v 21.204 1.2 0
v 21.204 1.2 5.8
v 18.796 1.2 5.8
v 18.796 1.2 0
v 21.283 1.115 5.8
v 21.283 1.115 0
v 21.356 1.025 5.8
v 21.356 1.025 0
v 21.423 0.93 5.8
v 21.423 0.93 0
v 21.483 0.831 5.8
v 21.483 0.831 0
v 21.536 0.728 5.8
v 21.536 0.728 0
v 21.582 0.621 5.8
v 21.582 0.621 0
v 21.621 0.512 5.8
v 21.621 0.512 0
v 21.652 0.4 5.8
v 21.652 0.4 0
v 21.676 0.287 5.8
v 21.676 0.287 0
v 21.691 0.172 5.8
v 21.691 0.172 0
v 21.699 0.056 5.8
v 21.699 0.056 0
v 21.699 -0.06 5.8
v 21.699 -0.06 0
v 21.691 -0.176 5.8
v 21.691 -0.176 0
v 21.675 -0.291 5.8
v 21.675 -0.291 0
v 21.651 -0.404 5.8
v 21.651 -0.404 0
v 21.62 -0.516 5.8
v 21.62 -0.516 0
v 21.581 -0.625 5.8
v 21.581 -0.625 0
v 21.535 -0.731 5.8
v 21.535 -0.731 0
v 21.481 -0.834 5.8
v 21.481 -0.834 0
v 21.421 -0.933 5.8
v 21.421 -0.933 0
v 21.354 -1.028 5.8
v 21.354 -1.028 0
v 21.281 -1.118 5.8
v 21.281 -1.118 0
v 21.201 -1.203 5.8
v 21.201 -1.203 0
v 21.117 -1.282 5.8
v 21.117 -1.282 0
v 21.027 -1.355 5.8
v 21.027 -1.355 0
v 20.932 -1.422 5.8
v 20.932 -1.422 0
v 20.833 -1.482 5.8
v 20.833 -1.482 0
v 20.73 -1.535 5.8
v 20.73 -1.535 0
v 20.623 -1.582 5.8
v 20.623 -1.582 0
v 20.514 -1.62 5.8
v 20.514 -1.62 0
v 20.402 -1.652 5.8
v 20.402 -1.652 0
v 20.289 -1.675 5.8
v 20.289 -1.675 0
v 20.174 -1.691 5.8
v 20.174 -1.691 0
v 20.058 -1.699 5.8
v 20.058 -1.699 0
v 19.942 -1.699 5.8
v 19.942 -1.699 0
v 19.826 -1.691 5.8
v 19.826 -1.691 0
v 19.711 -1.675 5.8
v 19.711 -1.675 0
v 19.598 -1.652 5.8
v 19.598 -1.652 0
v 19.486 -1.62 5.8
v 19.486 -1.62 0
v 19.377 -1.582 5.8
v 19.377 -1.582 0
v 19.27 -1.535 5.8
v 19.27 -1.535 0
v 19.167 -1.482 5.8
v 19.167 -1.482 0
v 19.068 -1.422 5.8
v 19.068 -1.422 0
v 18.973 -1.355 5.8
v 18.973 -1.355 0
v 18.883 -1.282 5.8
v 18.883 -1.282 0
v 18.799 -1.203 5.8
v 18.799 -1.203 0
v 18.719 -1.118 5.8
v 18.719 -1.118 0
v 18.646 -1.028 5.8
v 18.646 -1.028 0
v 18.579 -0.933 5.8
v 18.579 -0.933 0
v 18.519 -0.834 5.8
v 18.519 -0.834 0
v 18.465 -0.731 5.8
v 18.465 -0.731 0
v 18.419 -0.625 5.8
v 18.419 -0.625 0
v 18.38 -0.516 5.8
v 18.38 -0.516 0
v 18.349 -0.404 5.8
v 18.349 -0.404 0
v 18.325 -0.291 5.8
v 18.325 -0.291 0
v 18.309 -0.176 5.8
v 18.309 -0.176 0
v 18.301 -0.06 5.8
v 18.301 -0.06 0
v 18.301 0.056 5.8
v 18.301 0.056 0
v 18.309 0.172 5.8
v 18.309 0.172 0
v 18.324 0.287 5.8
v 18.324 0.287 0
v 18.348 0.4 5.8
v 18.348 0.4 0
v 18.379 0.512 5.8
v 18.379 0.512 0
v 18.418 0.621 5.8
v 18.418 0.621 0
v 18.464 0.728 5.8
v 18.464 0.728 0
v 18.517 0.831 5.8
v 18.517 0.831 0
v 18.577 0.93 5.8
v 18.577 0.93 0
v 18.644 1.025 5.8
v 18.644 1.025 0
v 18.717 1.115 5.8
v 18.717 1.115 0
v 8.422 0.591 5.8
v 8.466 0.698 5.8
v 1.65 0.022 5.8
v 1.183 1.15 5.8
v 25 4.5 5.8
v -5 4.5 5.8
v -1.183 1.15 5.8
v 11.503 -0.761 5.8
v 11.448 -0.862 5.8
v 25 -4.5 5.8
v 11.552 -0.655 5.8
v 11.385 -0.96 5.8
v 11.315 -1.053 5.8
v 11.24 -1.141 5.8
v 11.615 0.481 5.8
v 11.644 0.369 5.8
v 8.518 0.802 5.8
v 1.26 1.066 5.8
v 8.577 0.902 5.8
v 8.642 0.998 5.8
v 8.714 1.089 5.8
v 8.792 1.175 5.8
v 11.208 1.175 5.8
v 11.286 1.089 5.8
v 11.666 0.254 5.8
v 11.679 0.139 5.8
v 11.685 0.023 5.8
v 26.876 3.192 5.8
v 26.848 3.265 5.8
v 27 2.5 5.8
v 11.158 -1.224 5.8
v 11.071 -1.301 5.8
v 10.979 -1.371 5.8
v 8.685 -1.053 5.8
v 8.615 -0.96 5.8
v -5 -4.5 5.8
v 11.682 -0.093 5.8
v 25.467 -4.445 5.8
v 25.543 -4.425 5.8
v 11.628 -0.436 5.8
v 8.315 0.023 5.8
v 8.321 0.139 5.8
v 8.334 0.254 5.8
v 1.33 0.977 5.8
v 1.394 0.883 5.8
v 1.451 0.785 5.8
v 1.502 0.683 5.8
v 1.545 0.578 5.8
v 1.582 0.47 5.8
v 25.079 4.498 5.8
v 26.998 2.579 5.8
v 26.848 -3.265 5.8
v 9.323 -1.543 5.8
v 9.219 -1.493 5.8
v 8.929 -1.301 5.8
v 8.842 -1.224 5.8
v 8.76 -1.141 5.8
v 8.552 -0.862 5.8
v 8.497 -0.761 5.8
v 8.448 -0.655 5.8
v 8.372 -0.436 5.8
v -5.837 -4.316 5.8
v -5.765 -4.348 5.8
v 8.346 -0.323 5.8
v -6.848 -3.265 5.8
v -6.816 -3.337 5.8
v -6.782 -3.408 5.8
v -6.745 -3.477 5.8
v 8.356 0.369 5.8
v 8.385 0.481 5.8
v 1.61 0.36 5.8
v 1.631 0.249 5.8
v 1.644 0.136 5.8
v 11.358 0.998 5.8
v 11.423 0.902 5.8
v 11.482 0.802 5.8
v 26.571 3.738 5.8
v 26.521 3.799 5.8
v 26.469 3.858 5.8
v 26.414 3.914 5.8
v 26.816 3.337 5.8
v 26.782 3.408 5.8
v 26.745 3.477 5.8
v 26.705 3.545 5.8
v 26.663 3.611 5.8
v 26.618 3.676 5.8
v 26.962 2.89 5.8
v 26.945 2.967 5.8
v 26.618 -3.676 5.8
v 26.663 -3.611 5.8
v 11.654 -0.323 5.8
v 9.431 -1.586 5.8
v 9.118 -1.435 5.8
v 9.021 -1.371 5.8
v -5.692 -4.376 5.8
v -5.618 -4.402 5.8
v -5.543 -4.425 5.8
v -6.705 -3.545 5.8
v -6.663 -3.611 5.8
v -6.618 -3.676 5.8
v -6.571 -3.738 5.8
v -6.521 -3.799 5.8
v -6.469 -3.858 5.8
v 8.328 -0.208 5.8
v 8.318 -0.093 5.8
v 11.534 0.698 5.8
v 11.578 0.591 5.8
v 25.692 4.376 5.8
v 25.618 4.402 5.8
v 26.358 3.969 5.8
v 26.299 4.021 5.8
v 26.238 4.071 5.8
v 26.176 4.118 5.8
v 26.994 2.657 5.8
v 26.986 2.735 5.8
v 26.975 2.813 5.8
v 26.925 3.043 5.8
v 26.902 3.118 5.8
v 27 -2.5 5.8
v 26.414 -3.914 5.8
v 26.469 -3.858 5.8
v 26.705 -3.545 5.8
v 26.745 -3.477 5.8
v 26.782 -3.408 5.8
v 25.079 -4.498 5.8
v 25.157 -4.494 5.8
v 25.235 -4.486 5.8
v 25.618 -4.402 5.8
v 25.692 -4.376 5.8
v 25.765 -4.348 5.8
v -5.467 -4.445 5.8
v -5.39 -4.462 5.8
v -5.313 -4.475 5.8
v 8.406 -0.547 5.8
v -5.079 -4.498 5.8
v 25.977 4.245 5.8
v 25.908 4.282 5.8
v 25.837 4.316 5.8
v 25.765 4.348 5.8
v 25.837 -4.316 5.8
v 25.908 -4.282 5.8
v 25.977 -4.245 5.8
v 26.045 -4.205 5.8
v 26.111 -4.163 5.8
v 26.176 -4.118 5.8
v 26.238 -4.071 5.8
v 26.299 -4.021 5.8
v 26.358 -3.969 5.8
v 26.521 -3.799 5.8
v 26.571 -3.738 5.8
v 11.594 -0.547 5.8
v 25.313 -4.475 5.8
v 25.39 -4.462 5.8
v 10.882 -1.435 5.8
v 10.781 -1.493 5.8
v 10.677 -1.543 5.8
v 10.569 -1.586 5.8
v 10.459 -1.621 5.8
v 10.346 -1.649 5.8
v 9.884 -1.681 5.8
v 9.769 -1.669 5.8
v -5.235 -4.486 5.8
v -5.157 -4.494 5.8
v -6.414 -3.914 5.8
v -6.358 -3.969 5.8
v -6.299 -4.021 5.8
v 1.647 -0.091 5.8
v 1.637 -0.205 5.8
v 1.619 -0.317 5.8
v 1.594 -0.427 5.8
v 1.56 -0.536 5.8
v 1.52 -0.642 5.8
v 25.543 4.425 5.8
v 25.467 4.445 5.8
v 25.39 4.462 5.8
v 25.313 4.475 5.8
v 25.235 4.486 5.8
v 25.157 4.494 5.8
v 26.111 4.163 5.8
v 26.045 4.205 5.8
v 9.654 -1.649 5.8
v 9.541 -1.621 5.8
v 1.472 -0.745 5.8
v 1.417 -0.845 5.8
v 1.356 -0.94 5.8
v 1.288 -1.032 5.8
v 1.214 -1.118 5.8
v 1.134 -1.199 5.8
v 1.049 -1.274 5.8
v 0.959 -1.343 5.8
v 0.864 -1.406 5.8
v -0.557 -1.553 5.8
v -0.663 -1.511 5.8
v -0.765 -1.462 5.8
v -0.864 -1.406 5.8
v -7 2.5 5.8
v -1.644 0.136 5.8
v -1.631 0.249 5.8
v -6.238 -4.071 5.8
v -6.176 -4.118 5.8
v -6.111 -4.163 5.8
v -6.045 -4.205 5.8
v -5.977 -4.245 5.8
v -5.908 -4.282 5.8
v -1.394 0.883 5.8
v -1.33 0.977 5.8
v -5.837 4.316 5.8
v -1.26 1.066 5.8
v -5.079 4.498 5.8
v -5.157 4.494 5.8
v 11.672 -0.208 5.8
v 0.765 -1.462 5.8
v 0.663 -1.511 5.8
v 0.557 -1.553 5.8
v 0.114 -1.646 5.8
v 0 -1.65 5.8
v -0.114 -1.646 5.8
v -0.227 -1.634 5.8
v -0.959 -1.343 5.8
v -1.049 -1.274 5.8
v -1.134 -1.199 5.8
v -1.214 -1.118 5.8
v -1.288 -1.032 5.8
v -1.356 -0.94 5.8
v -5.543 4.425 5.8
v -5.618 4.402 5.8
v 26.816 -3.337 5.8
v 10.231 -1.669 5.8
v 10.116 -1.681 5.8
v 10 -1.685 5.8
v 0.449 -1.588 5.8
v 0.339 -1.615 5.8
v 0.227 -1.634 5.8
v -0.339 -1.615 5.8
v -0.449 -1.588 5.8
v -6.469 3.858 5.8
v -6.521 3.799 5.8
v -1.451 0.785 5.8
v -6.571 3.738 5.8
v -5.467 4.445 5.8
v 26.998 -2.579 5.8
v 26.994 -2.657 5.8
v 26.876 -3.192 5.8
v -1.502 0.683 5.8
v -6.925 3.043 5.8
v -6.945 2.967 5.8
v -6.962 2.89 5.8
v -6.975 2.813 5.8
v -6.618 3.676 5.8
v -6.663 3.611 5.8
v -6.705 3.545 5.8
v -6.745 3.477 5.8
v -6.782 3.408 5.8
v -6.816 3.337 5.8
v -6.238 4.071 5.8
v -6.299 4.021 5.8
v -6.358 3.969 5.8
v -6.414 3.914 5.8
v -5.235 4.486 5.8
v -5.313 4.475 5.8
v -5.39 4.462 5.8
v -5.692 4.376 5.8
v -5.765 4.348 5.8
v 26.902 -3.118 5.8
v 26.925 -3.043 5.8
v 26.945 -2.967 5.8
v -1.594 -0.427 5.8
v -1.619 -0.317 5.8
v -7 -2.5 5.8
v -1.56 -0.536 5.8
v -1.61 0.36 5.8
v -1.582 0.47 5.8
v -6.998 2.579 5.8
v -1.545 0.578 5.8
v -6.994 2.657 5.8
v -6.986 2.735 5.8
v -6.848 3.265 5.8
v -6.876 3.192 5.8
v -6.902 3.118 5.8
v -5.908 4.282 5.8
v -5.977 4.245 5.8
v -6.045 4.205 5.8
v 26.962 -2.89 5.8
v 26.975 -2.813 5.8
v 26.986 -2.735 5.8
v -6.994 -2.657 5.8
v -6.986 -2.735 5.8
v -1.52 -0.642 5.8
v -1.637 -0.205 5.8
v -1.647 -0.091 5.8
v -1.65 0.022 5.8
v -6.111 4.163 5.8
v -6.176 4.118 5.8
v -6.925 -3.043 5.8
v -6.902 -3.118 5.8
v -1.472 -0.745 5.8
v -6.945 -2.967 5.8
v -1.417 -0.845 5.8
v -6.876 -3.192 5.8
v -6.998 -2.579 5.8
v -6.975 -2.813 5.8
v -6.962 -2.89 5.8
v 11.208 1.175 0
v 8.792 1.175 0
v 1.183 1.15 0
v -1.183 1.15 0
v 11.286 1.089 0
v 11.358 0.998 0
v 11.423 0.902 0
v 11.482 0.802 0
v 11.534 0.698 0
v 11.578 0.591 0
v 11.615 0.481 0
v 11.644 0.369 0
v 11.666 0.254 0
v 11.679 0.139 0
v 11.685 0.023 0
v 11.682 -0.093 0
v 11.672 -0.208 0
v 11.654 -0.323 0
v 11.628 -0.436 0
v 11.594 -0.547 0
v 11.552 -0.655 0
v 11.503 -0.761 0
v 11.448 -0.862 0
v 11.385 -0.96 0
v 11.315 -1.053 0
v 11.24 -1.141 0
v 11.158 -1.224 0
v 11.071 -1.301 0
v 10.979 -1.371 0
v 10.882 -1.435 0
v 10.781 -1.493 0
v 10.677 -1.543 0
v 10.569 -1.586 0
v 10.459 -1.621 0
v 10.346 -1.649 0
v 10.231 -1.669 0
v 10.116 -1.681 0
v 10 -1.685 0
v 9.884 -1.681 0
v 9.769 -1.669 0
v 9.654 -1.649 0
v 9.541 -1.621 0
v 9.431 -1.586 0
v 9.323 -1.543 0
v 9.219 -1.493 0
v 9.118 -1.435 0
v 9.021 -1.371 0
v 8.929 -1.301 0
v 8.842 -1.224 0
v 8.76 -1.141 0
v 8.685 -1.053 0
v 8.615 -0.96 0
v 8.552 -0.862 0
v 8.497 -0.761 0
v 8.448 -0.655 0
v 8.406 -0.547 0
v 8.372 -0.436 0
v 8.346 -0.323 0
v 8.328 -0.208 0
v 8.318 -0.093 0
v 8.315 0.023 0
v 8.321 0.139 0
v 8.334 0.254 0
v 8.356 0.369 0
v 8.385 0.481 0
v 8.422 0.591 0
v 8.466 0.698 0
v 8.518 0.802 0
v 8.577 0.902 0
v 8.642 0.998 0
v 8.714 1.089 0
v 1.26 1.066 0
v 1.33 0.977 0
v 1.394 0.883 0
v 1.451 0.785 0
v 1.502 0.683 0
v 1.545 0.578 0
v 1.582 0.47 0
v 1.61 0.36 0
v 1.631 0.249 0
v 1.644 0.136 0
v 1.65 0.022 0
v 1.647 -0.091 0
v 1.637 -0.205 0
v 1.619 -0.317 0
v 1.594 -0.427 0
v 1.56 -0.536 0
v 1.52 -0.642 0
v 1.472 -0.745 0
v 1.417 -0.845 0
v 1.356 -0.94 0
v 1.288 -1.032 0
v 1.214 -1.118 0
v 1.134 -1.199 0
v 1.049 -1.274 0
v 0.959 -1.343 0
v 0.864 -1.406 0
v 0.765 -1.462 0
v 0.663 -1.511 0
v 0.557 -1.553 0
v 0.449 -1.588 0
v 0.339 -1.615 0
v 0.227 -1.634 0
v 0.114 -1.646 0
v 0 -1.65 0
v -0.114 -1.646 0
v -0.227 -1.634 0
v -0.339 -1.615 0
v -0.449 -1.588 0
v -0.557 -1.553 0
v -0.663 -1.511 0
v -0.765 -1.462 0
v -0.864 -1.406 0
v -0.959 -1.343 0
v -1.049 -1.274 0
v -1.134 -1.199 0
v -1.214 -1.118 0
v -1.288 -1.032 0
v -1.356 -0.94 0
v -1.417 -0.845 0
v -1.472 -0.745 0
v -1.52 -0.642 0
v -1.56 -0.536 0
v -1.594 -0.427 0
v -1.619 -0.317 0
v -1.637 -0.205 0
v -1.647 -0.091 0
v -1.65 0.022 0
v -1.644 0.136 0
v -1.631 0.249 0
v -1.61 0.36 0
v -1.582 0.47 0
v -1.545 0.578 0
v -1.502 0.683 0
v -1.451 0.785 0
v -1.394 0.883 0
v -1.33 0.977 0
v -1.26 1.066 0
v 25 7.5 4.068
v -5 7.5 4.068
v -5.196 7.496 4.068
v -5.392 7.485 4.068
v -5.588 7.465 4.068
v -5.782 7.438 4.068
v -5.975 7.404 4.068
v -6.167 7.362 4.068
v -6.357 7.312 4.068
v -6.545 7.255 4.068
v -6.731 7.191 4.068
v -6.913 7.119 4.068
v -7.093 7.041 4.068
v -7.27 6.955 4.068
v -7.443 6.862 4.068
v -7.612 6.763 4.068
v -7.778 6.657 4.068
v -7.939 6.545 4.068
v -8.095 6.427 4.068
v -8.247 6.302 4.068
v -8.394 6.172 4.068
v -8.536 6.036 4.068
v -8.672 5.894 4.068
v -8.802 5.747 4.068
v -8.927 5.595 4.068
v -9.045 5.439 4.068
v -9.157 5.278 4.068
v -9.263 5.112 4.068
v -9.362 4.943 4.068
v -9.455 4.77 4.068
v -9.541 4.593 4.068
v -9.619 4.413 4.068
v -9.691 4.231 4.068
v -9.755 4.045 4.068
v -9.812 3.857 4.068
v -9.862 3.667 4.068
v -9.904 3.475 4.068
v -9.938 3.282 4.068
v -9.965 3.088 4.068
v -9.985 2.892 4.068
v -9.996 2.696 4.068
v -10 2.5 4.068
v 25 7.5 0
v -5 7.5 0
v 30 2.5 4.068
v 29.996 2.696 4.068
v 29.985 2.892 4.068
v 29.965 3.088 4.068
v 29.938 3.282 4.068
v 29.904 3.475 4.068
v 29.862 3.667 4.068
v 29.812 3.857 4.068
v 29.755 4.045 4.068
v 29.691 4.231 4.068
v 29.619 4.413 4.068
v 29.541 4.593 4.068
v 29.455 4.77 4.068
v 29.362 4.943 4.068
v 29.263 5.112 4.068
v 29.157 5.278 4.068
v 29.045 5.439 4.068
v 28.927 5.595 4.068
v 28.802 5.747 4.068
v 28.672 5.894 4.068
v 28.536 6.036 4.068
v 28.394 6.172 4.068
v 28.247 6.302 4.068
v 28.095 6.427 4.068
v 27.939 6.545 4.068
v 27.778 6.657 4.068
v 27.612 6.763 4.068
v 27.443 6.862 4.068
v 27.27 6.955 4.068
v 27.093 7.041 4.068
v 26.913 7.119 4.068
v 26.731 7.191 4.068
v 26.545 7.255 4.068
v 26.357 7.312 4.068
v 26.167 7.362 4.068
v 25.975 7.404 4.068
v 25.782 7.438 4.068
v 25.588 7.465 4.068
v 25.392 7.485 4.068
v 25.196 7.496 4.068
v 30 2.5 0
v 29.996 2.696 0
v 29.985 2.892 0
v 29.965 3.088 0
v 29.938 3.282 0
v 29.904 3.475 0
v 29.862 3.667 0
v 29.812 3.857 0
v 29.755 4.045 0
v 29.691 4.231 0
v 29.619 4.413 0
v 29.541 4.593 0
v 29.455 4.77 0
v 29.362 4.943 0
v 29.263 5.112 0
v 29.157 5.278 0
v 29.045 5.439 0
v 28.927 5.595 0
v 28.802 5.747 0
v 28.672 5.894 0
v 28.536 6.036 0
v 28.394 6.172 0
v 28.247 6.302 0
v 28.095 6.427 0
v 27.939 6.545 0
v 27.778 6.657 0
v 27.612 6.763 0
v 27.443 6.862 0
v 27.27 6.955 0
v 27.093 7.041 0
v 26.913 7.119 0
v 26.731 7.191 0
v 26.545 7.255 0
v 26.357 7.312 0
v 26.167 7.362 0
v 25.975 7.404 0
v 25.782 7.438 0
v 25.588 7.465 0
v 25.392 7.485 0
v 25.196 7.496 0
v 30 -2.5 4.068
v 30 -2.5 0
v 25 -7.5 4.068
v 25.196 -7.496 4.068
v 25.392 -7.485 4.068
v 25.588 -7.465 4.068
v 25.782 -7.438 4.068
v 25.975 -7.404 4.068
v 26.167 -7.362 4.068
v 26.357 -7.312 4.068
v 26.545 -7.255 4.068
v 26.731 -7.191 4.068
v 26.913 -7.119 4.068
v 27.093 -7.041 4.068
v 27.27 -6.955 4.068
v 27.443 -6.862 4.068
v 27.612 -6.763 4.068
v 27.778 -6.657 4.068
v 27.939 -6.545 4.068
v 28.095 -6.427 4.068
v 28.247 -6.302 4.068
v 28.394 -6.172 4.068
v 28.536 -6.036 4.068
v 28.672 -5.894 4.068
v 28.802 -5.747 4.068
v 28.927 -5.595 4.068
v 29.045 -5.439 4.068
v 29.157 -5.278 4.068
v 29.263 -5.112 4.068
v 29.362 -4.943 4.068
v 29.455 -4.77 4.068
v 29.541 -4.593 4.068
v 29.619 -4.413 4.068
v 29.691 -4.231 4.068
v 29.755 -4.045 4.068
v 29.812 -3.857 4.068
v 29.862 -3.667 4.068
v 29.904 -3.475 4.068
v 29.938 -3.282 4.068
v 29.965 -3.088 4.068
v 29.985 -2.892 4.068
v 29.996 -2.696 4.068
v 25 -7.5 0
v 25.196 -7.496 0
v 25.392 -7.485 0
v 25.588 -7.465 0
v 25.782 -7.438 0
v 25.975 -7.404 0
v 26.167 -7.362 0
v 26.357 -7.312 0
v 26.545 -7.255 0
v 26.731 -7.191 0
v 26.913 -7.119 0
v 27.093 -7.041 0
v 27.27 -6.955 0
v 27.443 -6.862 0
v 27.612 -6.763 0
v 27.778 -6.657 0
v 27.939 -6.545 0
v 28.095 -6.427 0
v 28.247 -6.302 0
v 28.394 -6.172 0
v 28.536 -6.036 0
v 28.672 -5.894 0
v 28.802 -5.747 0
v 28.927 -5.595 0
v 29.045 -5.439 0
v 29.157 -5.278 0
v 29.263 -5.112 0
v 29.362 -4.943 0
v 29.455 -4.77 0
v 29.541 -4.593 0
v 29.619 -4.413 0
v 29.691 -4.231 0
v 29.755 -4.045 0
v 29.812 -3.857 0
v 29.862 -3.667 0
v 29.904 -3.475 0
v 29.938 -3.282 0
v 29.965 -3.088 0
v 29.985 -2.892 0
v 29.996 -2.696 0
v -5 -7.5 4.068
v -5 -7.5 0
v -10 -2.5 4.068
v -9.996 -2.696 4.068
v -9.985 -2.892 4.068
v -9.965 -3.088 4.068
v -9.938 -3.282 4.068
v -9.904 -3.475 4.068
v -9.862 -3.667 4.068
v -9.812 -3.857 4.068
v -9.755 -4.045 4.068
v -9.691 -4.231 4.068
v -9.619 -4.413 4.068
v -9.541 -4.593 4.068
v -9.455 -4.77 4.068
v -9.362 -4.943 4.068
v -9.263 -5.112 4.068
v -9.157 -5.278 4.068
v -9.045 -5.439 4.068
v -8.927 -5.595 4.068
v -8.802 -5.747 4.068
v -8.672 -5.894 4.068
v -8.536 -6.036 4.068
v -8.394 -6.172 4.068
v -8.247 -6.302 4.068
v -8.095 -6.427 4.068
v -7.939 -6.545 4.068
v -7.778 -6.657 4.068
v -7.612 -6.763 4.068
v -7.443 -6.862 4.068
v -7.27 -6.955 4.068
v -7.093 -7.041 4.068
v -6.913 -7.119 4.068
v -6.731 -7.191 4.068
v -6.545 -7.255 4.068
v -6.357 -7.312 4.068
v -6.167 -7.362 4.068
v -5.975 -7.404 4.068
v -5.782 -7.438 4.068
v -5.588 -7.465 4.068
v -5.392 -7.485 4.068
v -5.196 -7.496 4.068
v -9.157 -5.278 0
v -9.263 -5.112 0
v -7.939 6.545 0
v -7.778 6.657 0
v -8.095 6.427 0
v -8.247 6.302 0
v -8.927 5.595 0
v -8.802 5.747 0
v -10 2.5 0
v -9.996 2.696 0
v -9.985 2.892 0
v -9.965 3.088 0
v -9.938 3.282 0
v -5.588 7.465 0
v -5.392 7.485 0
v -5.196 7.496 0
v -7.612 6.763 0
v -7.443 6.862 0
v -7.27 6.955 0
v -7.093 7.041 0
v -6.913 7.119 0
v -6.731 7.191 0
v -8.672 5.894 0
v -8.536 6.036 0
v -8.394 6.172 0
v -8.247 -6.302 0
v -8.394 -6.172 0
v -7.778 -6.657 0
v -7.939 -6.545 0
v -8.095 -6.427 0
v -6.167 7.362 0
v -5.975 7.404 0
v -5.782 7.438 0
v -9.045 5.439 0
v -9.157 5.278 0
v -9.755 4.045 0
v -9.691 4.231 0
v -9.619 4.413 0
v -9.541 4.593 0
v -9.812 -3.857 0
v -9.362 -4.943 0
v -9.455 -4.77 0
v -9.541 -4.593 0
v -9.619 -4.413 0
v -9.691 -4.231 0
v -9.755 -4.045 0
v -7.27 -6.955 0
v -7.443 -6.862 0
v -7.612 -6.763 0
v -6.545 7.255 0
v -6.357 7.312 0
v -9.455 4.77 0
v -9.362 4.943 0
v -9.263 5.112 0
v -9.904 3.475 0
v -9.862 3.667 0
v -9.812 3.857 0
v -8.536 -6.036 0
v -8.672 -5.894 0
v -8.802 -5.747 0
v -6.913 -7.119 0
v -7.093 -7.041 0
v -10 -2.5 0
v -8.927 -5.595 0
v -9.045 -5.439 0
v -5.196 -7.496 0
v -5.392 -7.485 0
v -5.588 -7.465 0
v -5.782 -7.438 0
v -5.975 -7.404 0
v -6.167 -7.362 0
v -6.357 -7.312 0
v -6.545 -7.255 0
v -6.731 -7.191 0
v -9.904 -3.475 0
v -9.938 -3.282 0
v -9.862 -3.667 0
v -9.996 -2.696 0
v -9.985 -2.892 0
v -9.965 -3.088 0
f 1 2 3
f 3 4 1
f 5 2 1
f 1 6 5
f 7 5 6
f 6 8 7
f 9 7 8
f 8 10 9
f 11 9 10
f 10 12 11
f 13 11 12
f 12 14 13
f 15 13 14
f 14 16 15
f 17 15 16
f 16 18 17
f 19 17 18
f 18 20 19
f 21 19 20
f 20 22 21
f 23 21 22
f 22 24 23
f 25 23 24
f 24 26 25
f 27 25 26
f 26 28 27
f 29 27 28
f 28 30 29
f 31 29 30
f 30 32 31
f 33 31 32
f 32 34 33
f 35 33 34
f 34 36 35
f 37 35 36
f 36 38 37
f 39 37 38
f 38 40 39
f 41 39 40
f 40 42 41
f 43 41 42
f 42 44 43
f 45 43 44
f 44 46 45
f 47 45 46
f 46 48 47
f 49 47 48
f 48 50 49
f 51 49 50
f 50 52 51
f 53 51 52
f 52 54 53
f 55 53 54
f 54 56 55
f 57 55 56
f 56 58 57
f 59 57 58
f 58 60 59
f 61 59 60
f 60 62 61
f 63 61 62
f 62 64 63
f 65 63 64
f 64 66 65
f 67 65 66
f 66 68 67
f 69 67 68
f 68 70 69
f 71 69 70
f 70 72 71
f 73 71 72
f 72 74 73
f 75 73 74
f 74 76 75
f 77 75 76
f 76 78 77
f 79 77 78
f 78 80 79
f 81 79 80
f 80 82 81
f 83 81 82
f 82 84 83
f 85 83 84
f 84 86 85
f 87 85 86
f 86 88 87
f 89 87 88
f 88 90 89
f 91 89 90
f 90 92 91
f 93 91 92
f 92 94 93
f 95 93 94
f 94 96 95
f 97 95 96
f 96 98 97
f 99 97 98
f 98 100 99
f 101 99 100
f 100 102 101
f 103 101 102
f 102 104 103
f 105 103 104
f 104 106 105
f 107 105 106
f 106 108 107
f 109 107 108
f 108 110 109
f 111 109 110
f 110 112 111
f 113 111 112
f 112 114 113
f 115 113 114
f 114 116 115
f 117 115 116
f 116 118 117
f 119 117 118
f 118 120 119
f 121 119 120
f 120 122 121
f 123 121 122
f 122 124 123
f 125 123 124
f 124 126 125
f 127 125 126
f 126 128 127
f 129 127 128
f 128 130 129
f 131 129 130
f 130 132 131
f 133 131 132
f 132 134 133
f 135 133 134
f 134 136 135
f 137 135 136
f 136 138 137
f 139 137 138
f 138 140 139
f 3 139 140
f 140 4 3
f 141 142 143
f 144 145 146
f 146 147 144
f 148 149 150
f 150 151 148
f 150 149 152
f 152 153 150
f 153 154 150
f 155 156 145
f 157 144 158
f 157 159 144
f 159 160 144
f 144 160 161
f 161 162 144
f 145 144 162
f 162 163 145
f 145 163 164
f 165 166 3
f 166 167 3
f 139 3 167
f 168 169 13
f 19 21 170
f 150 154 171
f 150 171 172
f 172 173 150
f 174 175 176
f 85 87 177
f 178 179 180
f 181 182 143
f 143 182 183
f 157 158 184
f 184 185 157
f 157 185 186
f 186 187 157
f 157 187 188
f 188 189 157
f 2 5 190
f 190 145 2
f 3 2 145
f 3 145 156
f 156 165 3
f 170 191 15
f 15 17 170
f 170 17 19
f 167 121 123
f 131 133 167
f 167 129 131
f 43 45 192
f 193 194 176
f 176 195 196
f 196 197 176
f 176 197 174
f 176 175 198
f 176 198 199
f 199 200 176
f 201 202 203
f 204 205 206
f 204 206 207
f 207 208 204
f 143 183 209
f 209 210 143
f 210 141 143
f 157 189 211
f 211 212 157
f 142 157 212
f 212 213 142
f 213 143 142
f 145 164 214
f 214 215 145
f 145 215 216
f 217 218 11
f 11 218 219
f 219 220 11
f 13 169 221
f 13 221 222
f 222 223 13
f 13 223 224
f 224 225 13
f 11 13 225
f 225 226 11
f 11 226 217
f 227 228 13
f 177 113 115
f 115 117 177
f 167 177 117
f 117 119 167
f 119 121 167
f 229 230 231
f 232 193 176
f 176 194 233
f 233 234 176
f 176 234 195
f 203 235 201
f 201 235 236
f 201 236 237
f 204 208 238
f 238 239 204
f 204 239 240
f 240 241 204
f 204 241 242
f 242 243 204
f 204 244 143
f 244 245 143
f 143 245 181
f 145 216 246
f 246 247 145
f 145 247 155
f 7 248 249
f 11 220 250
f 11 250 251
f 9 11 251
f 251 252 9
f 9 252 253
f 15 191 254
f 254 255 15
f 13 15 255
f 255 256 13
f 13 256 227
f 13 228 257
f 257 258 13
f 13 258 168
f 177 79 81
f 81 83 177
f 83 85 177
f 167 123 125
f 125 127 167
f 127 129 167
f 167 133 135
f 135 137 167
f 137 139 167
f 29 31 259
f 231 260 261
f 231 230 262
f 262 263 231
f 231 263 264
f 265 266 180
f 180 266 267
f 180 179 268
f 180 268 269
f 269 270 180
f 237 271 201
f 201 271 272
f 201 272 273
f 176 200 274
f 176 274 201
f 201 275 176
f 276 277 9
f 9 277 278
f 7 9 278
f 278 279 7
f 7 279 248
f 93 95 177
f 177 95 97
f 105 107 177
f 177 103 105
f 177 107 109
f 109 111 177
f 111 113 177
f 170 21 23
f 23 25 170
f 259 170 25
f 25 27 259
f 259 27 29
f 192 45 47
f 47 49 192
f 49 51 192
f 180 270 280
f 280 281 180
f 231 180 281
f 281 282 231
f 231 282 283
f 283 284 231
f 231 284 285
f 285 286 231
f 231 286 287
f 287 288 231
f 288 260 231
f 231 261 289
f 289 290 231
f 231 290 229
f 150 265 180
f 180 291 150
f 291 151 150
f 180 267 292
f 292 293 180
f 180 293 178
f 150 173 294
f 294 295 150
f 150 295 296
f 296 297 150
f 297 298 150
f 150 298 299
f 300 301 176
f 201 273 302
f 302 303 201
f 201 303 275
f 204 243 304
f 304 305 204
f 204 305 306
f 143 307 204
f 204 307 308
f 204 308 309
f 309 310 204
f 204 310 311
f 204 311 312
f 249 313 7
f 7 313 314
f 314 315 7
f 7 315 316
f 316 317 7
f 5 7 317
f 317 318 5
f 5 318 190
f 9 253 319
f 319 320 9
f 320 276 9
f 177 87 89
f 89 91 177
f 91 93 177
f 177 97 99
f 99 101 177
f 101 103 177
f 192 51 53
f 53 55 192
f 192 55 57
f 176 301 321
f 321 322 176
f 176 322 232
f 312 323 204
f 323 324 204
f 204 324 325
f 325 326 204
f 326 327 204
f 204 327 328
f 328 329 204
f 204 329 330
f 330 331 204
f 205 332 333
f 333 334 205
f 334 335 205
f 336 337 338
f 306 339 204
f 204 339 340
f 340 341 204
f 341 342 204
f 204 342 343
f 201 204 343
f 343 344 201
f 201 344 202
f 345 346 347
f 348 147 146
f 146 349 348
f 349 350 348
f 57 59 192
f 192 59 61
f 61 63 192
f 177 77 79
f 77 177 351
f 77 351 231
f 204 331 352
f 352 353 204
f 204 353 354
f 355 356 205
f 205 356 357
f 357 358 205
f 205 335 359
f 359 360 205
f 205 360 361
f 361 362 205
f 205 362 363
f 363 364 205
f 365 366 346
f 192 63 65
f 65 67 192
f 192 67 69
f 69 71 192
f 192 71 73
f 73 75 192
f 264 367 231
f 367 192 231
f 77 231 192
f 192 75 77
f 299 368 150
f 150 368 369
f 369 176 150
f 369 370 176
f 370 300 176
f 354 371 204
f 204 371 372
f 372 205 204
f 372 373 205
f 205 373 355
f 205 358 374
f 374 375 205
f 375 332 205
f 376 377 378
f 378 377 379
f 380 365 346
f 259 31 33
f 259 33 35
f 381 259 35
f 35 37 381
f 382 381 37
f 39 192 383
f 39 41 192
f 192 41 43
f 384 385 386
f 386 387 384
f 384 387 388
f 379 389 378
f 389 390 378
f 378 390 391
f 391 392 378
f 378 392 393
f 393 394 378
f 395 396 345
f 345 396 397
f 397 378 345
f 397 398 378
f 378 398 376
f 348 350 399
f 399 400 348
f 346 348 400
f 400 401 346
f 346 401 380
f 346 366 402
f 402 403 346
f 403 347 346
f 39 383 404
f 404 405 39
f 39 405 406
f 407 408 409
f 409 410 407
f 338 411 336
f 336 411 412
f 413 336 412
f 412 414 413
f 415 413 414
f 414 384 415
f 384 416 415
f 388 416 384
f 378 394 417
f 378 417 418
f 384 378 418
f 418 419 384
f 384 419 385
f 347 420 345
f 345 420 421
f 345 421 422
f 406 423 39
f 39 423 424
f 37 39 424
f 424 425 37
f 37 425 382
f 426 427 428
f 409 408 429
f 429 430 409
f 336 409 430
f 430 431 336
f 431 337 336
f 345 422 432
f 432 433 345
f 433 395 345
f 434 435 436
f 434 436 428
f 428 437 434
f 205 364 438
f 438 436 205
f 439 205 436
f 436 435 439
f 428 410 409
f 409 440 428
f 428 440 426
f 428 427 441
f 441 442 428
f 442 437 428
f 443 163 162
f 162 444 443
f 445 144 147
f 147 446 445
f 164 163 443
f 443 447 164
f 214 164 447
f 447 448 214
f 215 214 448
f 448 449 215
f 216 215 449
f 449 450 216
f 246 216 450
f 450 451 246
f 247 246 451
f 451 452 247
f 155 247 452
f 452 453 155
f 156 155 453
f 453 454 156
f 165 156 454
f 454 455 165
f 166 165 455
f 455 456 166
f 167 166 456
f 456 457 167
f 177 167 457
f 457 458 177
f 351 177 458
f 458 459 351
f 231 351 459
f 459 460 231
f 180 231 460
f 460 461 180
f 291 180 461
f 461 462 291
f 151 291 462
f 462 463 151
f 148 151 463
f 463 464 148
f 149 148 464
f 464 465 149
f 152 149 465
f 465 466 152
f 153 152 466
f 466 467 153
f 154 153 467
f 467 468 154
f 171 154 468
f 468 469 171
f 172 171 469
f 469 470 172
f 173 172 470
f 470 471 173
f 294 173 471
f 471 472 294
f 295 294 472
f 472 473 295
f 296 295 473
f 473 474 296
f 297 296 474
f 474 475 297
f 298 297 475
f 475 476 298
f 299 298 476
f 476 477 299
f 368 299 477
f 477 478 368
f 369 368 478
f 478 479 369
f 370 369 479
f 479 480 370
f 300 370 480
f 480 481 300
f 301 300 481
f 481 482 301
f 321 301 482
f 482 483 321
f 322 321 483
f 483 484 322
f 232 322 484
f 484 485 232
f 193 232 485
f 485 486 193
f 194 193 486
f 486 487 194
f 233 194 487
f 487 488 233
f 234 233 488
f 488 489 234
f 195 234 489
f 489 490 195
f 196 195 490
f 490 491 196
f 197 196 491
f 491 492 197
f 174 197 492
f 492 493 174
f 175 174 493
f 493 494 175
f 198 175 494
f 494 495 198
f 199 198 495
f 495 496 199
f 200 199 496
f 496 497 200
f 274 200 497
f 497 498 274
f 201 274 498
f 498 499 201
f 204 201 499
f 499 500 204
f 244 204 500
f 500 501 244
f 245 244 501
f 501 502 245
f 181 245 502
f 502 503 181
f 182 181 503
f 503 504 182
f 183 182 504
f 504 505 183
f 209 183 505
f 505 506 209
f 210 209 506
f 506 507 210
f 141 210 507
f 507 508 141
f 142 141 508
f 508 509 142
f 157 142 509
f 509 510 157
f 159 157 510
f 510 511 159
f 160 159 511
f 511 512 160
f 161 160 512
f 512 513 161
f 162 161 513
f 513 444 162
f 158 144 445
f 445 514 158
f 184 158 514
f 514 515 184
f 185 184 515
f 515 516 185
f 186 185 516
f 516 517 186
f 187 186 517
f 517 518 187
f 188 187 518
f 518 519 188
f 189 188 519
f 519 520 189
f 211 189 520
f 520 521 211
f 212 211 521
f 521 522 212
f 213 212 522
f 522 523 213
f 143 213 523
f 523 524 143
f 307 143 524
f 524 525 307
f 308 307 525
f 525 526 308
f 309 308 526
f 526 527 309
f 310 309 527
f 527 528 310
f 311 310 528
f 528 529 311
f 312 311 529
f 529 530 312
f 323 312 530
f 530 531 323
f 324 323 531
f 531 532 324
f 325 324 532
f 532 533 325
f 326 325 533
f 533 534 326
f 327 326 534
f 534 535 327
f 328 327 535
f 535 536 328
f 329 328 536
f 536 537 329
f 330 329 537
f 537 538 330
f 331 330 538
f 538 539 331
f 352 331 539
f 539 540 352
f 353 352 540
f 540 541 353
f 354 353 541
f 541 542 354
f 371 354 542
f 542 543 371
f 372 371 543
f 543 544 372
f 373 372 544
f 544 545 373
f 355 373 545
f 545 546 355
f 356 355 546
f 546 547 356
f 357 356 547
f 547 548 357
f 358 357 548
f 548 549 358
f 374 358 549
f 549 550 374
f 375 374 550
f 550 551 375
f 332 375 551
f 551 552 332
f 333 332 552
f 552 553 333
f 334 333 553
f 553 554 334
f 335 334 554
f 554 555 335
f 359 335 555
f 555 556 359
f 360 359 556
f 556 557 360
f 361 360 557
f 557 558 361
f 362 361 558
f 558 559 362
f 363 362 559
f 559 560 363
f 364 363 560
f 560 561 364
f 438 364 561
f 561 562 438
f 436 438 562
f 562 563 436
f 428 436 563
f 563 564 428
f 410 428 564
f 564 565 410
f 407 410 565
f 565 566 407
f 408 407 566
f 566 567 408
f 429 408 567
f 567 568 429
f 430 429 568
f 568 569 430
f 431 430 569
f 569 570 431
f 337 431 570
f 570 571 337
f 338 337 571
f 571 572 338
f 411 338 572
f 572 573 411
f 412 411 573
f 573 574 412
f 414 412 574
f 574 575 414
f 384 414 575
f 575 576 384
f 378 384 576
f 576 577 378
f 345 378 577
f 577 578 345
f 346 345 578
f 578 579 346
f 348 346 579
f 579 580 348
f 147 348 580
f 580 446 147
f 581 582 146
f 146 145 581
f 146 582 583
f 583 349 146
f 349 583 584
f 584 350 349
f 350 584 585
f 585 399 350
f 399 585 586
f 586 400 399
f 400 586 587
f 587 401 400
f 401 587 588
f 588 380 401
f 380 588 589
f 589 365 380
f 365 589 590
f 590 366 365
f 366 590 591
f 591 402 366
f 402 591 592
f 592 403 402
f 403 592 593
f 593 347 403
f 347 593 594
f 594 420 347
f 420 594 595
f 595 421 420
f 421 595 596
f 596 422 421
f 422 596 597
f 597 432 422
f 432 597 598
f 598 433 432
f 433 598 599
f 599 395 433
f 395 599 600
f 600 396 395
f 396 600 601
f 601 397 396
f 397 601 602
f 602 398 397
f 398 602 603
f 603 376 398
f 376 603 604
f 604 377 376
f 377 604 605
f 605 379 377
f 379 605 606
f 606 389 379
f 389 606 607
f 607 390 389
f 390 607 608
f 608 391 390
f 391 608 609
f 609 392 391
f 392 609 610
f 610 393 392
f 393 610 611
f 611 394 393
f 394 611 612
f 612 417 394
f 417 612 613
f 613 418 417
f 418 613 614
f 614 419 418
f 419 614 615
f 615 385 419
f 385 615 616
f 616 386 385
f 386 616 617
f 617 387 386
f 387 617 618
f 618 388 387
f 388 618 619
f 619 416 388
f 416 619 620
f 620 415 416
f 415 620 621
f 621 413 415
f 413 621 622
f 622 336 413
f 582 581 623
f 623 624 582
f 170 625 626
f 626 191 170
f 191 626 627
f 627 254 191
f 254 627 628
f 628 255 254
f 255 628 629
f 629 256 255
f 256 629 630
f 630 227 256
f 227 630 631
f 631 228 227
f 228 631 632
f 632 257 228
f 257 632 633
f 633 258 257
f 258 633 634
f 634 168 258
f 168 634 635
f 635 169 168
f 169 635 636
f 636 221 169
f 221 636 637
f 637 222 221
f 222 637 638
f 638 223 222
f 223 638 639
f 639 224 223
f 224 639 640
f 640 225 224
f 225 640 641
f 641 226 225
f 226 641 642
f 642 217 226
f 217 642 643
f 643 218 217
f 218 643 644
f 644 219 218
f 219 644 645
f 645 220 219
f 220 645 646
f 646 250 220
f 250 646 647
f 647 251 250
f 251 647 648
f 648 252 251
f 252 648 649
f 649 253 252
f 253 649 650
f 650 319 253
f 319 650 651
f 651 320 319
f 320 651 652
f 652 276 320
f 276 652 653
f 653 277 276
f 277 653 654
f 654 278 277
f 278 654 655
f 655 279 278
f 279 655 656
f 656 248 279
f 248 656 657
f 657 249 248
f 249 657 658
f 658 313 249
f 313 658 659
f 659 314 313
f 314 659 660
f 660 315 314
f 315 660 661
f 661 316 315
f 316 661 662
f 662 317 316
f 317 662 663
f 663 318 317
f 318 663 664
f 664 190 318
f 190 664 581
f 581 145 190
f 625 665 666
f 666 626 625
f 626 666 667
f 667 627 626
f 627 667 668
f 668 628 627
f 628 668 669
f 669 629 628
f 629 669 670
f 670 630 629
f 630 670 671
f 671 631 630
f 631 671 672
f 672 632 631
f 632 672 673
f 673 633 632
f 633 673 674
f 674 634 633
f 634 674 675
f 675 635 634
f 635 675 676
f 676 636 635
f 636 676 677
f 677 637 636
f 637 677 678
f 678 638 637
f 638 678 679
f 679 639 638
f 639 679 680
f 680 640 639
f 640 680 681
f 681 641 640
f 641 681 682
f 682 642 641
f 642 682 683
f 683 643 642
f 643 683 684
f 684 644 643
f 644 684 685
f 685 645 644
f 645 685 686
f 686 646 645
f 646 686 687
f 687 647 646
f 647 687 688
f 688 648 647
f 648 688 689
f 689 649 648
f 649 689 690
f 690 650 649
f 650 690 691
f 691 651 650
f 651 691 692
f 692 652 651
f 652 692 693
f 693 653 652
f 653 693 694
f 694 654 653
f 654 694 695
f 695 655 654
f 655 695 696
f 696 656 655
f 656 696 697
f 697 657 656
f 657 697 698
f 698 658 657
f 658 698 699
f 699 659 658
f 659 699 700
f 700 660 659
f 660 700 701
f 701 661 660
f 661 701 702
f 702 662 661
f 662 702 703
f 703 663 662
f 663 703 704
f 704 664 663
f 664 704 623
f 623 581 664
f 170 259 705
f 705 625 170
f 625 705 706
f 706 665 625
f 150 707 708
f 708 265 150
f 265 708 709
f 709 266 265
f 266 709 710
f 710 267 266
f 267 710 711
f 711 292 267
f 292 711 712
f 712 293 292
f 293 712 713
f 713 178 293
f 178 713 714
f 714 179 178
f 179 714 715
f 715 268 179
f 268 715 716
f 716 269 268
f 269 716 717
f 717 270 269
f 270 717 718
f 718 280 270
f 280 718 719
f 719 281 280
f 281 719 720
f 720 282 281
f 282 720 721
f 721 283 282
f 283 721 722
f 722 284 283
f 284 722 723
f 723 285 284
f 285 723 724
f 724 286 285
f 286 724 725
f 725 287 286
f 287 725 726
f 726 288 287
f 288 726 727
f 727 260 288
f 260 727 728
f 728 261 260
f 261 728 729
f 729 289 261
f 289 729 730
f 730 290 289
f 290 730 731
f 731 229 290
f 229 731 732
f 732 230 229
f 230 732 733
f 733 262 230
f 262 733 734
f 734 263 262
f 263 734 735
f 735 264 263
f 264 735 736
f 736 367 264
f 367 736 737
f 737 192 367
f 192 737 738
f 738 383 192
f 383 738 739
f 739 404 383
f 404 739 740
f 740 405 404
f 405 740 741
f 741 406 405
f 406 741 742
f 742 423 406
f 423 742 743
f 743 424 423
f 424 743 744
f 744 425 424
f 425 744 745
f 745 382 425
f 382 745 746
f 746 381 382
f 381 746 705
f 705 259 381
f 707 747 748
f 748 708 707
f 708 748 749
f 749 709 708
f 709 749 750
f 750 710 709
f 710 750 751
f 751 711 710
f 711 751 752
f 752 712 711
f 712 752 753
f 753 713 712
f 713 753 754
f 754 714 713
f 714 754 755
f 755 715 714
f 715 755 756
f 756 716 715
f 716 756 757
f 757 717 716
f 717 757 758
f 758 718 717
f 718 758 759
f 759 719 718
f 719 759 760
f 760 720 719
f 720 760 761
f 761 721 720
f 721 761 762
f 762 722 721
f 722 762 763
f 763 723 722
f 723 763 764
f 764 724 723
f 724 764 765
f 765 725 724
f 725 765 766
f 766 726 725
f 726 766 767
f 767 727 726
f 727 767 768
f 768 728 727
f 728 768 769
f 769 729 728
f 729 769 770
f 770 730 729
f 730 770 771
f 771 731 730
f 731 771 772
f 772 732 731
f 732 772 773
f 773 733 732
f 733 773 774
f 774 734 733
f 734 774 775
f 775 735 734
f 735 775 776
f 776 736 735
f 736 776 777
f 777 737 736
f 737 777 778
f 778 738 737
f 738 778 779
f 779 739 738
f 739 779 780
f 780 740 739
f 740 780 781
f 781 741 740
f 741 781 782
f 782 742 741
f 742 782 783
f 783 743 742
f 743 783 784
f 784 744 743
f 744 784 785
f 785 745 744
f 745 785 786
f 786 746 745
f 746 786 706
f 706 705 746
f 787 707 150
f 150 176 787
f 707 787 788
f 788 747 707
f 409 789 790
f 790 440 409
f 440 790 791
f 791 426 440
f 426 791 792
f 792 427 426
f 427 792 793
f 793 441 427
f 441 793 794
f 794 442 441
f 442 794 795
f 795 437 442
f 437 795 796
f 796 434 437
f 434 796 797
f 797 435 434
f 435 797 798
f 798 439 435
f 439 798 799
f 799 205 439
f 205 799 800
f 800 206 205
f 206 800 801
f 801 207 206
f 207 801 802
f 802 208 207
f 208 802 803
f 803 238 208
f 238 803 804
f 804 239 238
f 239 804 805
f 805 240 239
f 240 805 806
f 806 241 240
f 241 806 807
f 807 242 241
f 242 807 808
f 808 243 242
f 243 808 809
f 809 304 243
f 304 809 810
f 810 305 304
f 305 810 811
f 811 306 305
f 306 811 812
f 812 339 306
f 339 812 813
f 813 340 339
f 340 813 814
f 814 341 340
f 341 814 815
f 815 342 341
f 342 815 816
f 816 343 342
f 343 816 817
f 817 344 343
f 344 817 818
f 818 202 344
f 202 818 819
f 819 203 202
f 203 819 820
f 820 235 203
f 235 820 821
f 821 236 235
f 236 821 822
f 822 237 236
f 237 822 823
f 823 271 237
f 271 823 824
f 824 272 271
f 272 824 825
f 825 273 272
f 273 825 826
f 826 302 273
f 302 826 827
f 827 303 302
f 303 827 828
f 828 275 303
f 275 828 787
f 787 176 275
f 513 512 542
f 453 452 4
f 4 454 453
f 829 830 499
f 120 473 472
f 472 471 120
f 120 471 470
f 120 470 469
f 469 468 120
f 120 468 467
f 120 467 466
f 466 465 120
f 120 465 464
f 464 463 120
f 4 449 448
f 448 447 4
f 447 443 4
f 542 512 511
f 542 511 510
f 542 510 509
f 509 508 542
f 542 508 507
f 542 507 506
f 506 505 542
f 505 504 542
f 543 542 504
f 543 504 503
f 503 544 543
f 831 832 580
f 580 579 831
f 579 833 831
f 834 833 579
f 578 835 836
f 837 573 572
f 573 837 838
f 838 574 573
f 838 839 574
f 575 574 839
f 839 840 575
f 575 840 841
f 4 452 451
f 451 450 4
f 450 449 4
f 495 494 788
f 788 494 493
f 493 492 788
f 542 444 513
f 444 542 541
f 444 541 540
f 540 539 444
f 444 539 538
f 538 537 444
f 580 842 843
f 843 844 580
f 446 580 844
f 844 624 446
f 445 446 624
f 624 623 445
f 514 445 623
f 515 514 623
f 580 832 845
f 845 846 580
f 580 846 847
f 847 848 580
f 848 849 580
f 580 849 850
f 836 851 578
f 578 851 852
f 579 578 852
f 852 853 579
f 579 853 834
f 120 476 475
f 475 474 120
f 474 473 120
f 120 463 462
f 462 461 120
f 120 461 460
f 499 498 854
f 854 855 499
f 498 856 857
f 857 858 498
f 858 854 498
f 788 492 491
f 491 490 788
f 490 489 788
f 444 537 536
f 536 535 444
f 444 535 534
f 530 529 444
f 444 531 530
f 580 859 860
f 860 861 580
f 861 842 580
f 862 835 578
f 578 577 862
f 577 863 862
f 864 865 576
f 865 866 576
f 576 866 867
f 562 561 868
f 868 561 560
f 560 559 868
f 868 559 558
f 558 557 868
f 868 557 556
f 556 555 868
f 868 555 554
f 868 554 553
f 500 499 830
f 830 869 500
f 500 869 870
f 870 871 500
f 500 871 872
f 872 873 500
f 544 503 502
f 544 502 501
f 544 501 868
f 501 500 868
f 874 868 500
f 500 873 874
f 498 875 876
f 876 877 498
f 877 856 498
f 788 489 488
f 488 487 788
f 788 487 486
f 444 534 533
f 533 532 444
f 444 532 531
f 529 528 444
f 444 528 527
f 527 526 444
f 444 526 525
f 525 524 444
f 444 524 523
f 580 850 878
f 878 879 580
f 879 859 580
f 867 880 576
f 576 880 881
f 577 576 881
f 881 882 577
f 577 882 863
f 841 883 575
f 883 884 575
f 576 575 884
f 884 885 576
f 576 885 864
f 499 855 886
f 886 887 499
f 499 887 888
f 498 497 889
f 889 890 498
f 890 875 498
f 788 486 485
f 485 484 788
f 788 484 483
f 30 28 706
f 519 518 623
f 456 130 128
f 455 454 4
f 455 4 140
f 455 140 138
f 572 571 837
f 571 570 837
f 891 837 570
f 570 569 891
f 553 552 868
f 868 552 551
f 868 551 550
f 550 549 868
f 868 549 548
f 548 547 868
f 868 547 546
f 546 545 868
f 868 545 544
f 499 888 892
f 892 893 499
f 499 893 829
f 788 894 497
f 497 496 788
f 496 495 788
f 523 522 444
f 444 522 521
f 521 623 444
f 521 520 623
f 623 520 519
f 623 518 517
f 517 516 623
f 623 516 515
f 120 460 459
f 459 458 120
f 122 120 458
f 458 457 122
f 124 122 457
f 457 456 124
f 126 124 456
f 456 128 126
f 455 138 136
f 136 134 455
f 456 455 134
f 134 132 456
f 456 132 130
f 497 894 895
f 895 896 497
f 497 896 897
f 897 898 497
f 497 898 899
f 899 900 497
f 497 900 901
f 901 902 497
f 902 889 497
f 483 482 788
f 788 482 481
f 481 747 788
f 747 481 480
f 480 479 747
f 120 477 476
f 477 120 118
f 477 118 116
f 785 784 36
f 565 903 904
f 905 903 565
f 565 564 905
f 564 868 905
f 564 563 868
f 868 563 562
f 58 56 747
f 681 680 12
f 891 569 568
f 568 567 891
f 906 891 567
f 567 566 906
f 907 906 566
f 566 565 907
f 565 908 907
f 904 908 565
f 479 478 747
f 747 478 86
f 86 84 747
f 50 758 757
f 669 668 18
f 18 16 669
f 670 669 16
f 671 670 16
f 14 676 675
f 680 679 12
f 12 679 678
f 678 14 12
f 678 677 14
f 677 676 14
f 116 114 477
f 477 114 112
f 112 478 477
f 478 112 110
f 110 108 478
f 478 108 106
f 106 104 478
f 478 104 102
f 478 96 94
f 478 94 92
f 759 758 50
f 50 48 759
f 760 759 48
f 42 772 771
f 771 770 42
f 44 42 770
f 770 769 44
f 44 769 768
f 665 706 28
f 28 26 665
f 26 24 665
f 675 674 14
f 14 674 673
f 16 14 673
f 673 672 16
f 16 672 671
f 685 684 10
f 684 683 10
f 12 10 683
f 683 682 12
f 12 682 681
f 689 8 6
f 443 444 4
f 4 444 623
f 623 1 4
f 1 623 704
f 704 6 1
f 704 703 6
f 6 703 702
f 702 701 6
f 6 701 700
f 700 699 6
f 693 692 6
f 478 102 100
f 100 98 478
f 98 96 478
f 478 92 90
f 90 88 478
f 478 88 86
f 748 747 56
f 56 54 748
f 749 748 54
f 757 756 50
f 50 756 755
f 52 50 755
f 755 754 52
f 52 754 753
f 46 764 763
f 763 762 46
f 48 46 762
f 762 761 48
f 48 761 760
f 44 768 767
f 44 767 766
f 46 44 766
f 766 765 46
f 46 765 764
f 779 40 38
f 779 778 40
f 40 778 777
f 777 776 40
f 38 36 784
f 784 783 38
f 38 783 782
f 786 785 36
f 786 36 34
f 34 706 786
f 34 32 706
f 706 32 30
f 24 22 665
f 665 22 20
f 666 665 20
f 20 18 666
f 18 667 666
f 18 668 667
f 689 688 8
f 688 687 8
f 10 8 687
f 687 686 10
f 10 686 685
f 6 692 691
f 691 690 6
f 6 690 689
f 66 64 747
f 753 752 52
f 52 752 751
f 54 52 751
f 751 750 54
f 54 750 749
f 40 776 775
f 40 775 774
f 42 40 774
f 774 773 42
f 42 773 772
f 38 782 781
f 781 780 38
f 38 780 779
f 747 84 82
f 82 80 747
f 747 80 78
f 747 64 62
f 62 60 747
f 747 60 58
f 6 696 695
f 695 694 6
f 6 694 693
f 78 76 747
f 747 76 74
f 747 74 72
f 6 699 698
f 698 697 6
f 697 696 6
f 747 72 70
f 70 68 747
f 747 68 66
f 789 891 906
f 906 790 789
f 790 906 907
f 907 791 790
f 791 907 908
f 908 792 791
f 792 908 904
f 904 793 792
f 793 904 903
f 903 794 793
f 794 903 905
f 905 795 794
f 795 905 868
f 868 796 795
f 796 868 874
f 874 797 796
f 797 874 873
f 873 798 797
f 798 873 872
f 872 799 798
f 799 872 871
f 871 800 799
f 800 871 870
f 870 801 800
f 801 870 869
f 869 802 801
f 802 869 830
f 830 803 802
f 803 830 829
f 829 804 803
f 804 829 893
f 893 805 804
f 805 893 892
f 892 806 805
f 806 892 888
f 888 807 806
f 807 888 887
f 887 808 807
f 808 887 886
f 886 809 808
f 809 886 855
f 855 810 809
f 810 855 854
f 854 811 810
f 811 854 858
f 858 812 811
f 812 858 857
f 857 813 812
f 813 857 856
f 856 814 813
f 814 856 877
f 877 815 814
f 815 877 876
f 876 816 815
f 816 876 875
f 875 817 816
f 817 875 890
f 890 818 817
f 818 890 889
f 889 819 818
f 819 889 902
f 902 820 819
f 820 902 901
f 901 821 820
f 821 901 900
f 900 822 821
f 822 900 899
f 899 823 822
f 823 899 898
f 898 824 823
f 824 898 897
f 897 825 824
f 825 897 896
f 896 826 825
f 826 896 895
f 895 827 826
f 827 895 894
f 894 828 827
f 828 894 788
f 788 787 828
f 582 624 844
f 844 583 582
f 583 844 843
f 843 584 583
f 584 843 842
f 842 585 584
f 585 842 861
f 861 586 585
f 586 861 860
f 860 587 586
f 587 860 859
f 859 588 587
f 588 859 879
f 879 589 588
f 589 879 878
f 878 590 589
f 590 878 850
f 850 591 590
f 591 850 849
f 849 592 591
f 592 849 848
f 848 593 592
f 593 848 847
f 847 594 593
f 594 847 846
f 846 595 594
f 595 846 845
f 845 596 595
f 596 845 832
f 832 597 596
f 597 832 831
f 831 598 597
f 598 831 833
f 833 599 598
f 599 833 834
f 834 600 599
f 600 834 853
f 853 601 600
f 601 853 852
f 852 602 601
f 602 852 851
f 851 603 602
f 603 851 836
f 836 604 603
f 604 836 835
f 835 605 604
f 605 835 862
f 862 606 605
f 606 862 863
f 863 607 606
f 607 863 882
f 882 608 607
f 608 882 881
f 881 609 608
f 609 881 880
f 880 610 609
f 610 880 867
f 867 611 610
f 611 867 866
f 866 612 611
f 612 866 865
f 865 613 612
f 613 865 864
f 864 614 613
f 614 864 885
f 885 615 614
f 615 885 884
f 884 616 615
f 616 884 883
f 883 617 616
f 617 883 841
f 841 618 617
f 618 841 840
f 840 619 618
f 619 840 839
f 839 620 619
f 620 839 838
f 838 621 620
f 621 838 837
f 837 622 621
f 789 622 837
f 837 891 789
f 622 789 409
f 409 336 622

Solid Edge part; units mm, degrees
sketch "Sketch1" plane through (0, 0, 0) normal (0, 0, 1) x (1, 0, 0)
  line L0 (-5, -7.5) -> (25, -7.5)
  arc A0 (25, -7.5) -> (30, -2.5) centre (25, -2.5) ccw
  line L1 (30, -2.5) -> (30, 2.5)
  arc A1 (25, 7.5) -> (30, 2.5) centre (25, 2.5) cw
  line L2 (25, 7.5) -> (-5, 7.5)
  arc A2 (-10, 2.5) -> (-5, 7.5) centre (-5, 2.5) cw
  line L3 (-10, 2.5) -> (-10, -2.5)
  arc A3 (-10, -2.5) -> (-5, -7.5) centre (-5, -2.5) ccw
  arc A4 (1.1832, 1.15) -> (-1.1832, 1.15) centre (0, 0) cw
  line L4 (0, 1.15) -> (-1.1832, 1.15)
  line L5 (0, 1.15) -> (1.1832, 1.15)
  arc A5 (11.2077, 1.175) -> (8.7923, 1.175) centre (10, 0) cw
  line L6 (10, 1.175) -> (8.7923, 1.175)
  line L7 (10, 1.175) -> (11.2077, 1.175)
  arc A6 (21.2042, 1.2) -> (18.7958, 1.2) centre (20, 0) cw
  line L8 (20, 1.2) -> (18.7958, 1.2)
  line L9 (20, 1.2) -> (21.2042, 1.2)
extrude "Protrusion1" add sketch "Sketch1" along normal blind 5.8
chamfer "Chamfer_top" distance 3 angle 30 8 edges at (28.5355, -6.0355, 5.8) (30, 0, 5.8) (28.5355, 6.0355, 5.8) (10, 7.5, 5.8) (-8.5355, 6.0355, 5.8) (-10, 0, 5.8) (-8.5355, -6.0355, 5.8) (10, -7.5, 5.8) measured on face at (-3.7333, -4.85, 5.8)
